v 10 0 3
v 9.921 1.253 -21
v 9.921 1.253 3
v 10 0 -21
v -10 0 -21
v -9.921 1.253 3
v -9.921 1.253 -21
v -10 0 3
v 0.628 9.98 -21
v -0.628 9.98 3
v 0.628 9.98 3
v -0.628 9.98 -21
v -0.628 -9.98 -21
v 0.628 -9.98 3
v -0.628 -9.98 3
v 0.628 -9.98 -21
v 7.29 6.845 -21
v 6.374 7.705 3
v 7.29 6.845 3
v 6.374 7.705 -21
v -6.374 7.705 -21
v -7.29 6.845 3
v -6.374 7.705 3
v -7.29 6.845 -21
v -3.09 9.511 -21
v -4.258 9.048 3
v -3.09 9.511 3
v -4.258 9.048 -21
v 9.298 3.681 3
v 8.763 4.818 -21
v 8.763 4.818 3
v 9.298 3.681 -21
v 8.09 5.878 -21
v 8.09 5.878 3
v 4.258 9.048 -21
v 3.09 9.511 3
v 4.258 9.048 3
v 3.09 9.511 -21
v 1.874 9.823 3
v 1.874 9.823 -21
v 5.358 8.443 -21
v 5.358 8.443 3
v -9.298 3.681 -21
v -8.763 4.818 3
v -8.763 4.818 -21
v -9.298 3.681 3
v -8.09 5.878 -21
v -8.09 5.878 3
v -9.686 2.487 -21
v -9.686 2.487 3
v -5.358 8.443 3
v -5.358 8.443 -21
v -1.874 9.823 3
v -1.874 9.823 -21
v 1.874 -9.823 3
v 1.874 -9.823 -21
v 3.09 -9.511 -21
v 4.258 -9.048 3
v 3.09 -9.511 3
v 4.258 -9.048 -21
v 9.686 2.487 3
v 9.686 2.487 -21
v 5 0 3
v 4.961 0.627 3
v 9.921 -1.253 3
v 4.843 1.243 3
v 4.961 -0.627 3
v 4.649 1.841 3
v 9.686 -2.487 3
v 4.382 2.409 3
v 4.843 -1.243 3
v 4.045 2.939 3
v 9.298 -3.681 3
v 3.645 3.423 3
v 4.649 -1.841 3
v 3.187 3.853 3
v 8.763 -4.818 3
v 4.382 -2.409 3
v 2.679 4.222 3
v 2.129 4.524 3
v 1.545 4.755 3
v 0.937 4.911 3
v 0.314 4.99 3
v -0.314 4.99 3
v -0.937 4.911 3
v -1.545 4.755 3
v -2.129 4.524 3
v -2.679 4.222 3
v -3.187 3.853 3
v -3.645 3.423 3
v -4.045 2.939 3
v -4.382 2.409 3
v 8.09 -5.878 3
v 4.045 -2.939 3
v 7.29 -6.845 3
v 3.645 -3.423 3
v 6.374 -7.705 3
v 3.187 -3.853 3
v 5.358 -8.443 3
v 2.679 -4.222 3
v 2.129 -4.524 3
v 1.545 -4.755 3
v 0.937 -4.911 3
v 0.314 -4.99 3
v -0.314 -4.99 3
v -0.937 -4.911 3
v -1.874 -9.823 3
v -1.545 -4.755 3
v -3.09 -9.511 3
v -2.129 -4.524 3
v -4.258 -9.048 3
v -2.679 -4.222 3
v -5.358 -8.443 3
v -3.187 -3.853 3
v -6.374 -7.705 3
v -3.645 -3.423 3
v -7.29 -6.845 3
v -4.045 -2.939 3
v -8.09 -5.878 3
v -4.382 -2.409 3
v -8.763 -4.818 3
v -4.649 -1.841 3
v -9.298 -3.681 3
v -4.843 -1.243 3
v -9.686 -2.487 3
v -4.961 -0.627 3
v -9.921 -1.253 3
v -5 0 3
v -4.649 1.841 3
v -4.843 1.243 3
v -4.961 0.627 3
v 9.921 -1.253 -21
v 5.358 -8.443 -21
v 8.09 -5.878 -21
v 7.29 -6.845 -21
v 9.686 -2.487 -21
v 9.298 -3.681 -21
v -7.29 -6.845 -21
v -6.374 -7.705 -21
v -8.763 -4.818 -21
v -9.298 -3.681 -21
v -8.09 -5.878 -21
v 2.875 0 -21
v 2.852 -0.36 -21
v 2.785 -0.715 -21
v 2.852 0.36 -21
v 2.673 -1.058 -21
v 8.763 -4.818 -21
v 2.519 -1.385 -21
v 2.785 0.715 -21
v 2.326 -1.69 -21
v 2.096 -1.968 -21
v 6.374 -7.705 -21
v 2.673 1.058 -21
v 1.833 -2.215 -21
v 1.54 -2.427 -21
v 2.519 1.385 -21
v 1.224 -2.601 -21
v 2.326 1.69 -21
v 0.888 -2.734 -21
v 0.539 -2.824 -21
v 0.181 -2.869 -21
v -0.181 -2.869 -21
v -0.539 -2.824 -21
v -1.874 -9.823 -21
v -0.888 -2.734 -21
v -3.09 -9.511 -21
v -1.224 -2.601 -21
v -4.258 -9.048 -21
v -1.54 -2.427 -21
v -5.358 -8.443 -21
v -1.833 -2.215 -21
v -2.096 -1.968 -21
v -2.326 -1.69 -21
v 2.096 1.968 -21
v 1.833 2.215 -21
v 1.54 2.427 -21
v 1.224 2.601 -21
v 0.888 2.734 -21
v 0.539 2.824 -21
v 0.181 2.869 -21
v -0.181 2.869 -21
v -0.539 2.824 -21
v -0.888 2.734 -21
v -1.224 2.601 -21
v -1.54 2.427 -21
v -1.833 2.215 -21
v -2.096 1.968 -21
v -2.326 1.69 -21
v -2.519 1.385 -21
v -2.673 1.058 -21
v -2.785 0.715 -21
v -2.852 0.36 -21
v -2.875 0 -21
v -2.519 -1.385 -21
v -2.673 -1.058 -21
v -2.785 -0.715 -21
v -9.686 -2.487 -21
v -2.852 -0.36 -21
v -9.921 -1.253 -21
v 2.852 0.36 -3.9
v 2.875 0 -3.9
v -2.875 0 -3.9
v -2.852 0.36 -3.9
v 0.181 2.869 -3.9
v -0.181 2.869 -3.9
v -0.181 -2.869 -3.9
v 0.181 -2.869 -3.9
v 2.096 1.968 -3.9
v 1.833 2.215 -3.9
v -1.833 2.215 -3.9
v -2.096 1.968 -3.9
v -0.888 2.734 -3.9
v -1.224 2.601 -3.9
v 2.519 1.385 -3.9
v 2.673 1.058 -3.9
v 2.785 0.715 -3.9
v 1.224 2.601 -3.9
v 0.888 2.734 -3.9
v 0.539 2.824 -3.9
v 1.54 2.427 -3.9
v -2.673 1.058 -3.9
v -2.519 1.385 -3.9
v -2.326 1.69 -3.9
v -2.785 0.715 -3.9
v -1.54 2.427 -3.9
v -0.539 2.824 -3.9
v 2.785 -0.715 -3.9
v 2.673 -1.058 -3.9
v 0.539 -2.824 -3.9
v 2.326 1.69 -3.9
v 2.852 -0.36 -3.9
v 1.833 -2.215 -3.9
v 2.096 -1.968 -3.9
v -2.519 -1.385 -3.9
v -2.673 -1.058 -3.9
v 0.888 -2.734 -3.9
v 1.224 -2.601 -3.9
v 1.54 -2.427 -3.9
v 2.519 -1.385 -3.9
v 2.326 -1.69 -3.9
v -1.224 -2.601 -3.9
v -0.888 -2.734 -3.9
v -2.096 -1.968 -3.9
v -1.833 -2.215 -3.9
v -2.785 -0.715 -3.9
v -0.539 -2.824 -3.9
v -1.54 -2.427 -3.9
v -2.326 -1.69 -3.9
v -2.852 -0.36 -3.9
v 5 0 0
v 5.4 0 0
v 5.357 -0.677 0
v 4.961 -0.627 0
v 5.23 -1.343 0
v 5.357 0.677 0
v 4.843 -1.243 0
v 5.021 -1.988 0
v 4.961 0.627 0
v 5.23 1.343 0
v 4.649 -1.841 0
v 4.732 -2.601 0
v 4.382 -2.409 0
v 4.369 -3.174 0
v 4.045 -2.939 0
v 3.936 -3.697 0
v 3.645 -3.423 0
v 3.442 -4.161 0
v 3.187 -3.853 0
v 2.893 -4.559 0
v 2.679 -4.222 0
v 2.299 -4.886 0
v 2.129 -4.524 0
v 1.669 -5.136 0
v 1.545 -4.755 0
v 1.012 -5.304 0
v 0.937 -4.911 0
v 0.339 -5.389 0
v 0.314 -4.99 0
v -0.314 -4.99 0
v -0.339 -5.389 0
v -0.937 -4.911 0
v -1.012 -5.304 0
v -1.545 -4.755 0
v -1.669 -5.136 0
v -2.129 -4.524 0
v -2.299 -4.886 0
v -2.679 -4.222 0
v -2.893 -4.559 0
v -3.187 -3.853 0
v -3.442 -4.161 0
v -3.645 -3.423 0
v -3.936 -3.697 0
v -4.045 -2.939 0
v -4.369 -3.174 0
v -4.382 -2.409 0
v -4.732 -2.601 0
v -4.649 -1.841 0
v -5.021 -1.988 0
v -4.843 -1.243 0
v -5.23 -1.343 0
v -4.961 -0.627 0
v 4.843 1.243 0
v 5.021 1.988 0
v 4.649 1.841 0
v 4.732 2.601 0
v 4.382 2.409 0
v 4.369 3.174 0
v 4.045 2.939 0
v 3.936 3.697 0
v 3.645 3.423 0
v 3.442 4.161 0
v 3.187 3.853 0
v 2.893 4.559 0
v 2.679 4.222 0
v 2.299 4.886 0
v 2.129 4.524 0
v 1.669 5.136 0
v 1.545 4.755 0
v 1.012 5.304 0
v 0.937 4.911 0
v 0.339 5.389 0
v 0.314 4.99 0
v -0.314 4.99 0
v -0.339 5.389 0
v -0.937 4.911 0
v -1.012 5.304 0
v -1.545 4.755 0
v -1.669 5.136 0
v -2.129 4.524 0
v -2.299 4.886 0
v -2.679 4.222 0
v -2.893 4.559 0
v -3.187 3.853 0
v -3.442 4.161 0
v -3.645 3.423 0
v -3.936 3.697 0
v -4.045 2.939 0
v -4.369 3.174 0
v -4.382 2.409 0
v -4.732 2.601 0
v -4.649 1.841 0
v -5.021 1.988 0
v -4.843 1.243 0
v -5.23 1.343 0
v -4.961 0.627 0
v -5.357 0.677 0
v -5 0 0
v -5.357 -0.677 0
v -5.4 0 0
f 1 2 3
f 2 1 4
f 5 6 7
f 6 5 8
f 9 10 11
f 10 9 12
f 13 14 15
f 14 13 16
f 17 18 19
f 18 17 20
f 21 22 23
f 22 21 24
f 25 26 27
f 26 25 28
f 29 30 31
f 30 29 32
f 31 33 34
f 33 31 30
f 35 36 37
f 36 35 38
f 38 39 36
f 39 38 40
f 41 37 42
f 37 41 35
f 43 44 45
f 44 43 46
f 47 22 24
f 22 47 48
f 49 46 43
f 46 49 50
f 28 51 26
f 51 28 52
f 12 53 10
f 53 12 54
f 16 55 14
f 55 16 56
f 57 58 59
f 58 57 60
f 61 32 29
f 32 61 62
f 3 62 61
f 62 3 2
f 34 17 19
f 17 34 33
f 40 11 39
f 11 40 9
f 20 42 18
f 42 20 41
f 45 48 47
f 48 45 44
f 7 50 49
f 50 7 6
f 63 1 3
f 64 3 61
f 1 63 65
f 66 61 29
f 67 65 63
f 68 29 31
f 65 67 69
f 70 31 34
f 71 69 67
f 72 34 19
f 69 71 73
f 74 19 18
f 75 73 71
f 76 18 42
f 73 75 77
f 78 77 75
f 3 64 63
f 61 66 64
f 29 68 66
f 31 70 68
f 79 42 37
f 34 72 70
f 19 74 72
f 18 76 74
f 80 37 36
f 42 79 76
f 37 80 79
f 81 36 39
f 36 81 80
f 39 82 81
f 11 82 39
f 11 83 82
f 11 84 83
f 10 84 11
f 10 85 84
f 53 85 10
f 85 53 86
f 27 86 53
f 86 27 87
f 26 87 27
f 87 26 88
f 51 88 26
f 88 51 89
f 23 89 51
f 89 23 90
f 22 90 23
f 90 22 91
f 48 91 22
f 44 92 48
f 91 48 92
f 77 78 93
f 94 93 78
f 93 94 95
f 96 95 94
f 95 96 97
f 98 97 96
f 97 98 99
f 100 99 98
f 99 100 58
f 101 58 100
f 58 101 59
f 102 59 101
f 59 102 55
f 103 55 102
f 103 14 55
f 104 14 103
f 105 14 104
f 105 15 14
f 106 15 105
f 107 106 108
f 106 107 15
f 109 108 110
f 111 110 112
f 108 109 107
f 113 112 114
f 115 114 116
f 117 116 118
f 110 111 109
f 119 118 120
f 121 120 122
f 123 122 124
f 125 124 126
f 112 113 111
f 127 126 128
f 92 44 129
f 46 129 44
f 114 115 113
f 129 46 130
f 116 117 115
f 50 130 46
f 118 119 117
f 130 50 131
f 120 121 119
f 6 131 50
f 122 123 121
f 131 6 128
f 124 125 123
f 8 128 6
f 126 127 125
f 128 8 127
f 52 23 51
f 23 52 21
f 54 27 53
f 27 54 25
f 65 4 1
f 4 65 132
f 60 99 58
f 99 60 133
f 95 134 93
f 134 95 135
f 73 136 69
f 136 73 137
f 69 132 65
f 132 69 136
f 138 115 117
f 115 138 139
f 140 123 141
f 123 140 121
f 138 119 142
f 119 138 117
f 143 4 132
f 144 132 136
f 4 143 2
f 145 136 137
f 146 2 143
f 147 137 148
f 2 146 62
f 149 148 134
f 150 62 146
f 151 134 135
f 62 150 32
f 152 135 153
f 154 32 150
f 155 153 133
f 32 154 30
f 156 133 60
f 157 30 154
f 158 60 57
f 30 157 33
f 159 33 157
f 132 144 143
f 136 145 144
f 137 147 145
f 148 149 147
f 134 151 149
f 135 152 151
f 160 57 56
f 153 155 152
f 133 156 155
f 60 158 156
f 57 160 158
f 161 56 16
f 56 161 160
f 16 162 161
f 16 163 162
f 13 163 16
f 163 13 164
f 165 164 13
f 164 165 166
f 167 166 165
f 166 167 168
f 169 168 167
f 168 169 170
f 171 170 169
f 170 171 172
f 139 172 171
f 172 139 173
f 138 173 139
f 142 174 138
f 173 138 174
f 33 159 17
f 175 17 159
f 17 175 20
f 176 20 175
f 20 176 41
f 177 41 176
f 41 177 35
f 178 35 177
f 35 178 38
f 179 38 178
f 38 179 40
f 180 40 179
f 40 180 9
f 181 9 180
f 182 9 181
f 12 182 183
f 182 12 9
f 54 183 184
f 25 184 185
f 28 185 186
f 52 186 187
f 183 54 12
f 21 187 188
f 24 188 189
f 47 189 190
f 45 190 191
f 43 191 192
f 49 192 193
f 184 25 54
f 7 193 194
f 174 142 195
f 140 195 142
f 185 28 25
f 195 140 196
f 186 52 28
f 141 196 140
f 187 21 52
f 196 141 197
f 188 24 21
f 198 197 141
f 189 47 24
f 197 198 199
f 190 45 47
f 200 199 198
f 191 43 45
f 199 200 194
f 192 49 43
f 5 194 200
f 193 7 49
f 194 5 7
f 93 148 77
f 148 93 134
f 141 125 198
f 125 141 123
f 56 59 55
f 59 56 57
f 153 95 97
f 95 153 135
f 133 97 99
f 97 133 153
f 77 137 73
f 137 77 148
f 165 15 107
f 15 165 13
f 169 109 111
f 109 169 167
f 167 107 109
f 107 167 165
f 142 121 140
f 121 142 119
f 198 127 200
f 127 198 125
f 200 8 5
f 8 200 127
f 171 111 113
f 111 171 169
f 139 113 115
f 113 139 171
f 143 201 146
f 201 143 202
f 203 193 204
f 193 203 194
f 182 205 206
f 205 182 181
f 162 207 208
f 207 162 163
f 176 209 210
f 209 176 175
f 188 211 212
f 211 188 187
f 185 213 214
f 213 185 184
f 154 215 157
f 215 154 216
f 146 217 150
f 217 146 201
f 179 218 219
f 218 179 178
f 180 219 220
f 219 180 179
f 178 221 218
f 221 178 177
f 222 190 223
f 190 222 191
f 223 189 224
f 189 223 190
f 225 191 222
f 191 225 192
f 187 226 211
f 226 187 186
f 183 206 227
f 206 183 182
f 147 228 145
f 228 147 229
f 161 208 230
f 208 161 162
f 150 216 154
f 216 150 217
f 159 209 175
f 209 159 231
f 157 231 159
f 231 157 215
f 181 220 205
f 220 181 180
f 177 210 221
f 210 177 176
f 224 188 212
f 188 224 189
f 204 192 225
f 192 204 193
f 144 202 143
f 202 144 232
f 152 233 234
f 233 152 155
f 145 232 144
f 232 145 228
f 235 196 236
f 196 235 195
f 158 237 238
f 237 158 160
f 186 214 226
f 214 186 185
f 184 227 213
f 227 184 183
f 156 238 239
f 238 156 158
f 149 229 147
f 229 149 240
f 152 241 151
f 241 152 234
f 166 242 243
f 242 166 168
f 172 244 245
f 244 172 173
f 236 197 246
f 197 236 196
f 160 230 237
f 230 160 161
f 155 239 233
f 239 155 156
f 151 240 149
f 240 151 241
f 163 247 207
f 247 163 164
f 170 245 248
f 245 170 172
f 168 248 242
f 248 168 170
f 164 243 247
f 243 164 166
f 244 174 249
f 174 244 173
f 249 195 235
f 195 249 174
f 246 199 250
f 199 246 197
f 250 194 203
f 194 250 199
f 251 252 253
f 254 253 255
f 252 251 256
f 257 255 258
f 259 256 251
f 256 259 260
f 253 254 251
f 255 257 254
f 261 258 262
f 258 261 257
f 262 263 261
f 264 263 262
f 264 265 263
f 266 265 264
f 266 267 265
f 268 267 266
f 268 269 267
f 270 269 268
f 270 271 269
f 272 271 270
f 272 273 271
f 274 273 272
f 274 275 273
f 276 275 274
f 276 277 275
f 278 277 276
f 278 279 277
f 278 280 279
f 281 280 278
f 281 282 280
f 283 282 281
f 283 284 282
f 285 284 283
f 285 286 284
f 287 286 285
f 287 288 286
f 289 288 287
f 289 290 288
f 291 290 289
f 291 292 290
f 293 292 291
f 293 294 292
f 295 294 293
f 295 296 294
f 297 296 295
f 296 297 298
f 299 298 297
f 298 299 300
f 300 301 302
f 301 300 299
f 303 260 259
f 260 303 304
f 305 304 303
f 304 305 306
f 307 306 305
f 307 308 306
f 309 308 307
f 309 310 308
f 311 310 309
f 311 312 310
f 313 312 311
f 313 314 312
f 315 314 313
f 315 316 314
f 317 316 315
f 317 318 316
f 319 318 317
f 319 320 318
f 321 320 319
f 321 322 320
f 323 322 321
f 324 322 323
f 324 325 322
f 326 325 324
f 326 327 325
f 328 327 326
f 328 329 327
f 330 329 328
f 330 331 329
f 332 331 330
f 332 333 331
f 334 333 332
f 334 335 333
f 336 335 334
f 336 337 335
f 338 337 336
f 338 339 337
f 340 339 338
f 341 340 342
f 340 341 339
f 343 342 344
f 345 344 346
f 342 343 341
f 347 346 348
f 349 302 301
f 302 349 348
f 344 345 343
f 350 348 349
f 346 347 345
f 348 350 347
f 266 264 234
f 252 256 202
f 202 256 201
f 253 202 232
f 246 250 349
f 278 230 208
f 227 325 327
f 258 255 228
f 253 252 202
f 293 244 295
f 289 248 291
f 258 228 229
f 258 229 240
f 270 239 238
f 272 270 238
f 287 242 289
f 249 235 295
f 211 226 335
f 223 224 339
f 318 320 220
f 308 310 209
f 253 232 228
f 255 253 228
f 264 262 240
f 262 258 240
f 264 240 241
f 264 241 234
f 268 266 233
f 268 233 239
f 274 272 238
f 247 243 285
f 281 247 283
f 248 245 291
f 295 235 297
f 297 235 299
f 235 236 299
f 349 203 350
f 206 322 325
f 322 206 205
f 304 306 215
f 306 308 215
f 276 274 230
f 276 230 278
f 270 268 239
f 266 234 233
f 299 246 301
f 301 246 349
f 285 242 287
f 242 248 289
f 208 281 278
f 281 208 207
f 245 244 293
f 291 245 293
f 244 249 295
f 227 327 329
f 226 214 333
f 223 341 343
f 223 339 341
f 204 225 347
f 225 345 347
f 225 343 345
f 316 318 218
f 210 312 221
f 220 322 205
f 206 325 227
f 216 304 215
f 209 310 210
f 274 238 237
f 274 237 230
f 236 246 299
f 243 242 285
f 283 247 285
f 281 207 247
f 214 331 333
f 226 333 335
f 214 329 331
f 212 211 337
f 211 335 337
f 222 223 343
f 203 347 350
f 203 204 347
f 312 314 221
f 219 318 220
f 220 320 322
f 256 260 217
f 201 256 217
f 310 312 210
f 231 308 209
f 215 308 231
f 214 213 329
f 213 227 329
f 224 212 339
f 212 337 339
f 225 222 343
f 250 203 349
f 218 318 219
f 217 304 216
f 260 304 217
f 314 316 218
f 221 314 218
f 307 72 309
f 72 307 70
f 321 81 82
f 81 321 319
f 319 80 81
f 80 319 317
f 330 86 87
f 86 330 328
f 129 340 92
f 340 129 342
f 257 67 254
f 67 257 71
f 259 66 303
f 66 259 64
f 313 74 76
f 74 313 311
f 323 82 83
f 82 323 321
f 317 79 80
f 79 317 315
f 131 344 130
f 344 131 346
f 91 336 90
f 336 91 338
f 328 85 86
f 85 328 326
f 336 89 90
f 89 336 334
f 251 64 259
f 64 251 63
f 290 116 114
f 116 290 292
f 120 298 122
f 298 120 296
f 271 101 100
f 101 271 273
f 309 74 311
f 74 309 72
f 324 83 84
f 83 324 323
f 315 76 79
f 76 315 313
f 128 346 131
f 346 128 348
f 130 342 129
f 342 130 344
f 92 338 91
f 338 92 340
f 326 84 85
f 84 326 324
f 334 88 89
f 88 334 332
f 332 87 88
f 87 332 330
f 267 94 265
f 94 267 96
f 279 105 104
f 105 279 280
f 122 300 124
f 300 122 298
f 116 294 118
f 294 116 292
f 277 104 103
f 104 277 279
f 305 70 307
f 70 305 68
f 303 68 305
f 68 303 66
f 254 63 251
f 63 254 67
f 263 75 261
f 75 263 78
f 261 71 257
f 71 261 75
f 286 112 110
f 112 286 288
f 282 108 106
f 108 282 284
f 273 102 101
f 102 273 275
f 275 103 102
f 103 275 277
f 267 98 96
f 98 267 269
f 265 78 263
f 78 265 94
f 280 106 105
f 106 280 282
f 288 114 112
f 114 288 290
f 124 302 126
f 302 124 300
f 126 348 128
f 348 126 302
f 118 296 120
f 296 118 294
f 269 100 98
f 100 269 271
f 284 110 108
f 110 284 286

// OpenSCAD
$fn = 50;

difference() {
	union() {
		translate(v = [0, 0, -21.0]) {
			cylinder(h = 24, r = 10.0);
		}
		#translate(v = [0, 0, -24.0]) {
			cylinder(h = 24, r = 2.875);
		}
	}
	union() {
		translate(v = [0, 0, 0]) {
			rotate(a = [0, 0, 0]) {
				difference() {
					union() {
						translate(v = [0, 0, -24.0]) {
							cylinder(h = 24, r = 2.6);
						}
						translate(v = [0, 0, -3.9]) {
							cylinder(h = 3.9, r1 = 2.875, r2 = 5.4);
						}
						translate(v = [0, 0, -24.0]) {
							cylinder(h = 24, r = 2.875);
						}
						translate(v = [0, 0, -24.0]) {
							cylinder(h = 24, r = 2.6);
						}
					}
					union();
				}
			}
		}
		#cylinder(h = 3, r = 5.0);
	}
}
